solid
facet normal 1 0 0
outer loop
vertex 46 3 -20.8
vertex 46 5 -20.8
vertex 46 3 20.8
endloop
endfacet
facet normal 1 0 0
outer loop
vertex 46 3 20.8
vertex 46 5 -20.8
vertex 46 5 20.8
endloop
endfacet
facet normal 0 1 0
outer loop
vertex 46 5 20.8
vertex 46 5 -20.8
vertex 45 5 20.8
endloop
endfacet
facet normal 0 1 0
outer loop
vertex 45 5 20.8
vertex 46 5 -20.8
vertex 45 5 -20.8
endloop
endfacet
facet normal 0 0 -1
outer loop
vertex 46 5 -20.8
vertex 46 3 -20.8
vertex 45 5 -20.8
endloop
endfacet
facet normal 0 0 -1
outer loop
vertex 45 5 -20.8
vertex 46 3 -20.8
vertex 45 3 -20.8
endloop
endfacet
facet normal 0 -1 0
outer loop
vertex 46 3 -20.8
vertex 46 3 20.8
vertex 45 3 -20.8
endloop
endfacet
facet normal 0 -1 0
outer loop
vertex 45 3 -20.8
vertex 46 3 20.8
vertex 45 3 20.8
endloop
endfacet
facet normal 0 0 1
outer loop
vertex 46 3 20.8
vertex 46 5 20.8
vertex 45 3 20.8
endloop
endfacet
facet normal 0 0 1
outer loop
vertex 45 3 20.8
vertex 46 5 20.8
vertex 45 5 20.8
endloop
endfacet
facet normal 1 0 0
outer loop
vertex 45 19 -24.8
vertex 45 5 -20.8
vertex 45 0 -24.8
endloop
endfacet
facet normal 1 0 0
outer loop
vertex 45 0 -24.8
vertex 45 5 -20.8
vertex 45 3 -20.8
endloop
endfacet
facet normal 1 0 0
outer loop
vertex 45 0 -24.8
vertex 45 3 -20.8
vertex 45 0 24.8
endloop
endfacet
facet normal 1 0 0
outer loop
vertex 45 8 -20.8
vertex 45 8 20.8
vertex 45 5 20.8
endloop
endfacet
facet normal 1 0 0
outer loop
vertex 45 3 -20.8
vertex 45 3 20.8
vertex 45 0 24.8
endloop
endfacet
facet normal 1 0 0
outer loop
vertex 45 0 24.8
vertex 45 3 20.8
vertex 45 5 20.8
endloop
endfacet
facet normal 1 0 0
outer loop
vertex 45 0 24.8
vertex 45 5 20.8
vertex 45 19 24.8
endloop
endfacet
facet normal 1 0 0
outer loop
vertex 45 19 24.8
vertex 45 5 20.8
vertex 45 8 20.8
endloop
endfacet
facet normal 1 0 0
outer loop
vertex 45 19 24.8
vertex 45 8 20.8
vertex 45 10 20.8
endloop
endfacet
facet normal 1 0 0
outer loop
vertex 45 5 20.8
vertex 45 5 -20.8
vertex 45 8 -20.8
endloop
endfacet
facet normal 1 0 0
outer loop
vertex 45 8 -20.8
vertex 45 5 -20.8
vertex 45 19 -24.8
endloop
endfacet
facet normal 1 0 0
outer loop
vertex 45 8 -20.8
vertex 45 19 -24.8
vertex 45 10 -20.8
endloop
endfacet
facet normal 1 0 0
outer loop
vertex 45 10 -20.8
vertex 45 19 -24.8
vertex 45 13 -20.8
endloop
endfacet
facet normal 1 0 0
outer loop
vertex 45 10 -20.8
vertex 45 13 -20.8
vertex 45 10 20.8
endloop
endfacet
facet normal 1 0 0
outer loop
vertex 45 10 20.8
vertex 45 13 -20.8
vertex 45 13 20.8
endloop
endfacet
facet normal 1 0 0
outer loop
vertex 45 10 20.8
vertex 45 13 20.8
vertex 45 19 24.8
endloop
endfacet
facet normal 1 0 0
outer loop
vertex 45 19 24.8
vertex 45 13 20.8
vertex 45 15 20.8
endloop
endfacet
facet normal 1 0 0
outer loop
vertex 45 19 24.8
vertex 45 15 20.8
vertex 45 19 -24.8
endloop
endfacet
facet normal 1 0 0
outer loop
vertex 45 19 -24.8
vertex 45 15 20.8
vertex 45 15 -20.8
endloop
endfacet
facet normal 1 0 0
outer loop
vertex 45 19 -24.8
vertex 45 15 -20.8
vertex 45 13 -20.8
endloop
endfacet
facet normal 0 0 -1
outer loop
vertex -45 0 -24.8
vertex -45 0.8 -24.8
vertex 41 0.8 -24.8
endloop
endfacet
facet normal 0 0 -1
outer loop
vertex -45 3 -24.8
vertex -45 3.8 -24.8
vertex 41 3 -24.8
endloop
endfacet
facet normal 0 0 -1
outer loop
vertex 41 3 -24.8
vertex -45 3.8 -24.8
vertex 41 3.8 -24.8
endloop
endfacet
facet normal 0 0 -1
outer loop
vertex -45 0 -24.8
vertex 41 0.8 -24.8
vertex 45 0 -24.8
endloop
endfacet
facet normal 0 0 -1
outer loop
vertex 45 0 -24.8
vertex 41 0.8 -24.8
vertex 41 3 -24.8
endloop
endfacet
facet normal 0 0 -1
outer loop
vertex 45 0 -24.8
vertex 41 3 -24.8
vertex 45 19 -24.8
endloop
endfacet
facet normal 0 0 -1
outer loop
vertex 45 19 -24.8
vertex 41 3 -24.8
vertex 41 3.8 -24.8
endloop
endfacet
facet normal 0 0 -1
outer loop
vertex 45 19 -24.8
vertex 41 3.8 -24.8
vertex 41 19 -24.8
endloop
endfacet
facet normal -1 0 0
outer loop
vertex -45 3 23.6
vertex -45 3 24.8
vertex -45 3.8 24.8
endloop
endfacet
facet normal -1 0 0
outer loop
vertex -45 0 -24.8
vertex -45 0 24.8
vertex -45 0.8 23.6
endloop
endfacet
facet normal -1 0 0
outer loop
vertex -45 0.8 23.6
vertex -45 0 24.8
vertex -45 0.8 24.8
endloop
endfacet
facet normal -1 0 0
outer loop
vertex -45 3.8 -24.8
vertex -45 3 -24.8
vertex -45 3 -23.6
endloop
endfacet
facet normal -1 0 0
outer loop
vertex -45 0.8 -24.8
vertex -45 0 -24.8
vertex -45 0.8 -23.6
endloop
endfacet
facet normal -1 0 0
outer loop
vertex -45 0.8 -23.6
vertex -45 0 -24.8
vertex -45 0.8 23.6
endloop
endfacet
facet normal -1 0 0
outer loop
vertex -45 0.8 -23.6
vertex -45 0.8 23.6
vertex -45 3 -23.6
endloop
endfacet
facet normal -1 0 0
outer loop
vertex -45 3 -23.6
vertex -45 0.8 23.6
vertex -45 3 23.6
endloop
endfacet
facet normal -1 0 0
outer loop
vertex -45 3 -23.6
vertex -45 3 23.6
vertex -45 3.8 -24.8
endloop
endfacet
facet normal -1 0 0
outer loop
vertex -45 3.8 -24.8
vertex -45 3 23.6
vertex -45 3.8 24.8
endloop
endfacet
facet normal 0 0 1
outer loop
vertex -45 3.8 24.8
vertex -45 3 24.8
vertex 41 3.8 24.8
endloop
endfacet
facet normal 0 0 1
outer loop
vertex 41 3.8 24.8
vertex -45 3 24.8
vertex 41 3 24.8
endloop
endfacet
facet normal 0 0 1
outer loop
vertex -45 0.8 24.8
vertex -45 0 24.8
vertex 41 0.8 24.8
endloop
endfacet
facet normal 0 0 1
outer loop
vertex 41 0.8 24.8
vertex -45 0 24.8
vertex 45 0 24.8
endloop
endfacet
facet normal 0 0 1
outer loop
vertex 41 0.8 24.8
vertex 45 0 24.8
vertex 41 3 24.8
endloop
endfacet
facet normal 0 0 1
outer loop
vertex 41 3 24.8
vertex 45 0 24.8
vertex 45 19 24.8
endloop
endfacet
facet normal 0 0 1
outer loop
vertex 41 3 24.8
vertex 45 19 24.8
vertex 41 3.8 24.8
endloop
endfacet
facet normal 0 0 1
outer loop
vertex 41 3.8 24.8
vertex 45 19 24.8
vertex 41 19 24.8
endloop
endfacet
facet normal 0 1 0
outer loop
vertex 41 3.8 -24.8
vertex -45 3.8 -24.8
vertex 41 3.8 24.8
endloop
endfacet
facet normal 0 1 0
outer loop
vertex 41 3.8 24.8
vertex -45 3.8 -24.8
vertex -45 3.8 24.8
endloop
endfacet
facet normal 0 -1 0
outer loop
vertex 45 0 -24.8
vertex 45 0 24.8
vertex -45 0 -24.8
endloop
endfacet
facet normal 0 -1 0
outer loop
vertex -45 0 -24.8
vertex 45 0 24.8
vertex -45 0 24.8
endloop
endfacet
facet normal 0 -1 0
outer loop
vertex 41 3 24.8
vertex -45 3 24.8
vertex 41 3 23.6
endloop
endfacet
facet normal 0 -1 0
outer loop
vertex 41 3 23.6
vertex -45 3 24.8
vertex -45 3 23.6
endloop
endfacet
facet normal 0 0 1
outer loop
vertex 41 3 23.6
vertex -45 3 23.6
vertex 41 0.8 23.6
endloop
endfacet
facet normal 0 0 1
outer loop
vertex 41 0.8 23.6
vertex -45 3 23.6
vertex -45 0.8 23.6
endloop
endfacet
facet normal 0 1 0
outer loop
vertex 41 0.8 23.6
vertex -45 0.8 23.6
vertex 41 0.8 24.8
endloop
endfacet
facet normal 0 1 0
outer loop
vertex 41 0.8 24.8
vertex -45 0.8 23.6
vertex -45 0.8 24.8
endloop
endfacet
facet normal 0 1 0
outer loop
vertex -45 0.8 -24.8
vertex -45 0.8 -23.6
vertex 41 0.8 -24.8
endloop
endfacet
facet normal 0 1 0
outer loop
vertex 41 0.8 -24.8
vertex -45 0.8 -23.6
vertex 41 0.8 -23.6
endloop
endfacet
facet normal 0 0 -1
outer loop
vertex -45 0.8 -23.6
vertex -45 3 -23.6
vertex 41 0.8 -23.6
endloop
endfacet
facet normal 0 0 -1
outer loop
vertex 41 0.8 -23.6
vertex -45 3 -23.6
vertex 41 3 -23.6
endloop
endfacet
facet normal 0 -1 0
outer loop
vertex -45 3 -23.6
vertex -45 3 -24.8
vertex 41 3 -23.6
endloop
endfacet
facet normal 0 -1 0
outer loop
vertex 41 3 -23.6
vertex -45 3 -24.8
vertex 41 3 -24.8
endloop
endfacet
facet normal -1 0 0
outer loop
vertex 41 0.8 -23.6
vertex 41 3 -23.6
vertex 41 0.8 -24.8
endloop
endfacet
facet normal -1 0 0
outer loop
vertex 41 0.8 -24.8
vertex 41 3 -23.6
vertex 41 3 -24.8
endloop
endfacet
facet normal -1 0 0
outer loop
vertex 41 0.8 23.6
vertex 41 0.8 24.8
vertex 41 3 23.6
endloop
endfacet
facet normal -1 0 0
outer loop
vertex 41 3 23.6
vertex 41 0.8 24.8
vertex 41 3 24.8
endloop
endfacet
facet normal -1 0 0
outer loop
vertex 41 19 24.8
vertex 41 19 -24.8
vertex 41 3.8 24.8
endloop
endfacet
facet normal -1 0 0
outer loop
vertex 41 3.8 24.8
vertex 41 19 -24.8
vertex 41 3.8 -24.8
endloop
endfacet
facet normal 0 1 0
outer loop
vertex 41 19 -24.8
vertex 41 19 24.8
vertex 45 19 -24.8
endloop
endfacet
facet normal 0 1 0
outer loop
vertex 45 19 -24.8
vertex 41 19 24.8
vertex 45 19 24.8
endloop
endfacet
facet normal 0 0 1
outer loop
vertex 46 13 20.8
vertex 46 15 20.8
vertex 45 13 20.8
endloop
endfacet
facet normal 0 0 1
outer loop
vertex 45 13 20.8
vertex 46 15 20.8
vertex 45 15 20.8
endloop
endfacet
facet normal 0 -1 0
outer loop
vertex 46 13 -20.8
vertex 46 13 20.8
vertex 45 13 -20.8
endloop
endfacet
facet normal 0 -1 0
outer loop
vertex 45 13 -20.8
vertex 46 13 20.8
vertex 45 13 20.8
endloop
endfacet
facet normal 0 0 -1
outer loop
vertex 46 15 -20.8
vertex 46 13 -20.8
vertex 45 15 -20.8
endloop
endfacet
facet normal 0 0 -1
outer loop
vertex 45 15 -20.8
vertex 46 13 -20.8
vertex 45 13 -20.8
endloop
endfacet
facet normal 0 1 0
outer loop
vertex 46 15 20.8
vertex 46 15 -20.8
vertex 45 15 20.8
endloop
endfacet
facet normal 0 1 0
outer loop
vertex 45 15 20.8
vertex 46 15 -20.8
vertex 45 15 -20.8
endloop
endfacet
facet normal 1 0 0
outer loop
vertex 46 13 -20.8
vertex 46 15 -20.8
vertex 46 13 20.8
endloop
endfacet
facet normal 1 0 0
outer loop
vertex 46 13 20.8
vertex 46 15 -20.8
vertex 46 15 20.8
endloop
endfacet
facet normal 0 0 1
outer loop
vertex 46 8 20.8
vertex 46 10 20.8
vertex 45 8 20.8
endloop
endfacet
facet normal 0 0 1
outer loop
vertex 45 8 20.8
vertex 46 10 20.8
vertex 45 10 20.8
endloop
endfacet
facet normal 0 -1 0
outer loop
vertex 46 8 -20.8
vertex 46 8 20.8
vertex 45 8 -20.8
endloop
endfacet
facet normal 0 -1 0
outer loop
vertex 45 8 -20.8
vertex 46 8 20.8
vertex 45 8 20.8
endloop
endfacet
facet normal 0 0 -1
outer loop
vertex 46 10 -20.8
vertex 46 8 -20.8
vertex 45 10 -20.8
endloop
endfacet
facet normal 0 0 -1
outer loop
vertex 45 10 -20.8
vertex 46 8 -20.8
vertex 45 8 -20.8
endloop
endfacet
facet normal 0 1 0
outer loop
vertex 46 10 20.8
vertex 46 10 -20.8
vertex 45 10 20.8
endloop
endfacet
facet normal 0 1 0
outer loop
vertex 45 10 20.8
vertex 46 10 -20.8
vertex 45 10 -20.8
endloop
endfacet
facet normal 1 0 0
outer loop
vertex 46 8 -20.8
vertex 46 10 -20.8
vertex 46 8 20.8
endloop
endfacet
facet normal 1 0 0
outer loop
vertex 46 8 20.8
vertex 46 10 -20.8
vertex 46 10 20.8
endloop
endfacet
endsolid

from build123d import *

# Parameters (mm, degrees)
SKETCH1_W           = 90
SKETCH1_H           = 49.6
BOSS_EXTRUDE1_DEPTH = 3.8
SKETCH2_W           = 1.2
SKETCH2_H           = 2.2
CUT_EXTRUDE1_DEPTH  = 91
SKETCH3_W           = 4
SKETCH3_H           = 49.6
BOSS_EXTRUDE2_DEPTH = 19
SKETCH4_W           = 41.6
SKETCH4_H           = 2
BOSS_EXTRUDE3_DEPTH = 1
LPATTERN1_COUNT     = 3
LPATTERN1_PITCH     = 5


with BuildPart() as part:
    # Sketch1 → Boss-Extrude1 (new body)
    with BuildSketch(Plane(origin=(0, 0, 0), x_dir=(1, 0, 0), z_dir=(0, 1, 0))):
        Rectangle(SKETCH1_W, SKETCH1_H)
    extrude(amount=BOSS_EXTRUDE1_DEPTH)

    # Sketch2 → Cut-Extrude1 (cut, through all)
    with BuildSketch(Plane(origin=(45, 0, 0), x_dir=(0, 0, -1), z_dir=(1, 0, 0))):
        with Locations((-24.2, 1.9)):
            Rectangle(SKETCH2_W, SKETCH2_H)
    cut_extrude1 = extrude(amount=-CUT_EXTRUDE1_DEPTH, mode=Mode.SUBTRACT)

    # Mirror1: Cut-Extrude1 across plane
    add(cut_extrude1.mirror(Plane.XY), mode=Mode.SUBTRACT)

    # Sketch3 → Boss-Extrude2 (add)
    with BuildSketch(Plane.XZ):
        with Locations((43, 0)):
            Rectangle(SKETCH3_W, SKETCH3_H)
    extrude(amount=-BOSS_EXTRUDE2_DEPTH)

    # Sketch4 → Boss-Extrude3 (add)
    with BuildSketch(Plane(origin=(45, 0, 0), x_dir=(0, 0, -1), z_dir=(1, 0, 0))):
        with Locations((0, 14)):
            Rectangle(SKETCH4_W, SKETCH4_H)
    boss_extrude3 = extrude(amount=BOSS_EXTRUDE3_DEPTH)

    # LPattern1: Boss-Extrude3 ×3
    with Locations(*[(0, -i * LPATTERN1_PITCH, 0) for i in range(1, LPATTERN1_COUNT)]):
        add(boss_extrude3)


solid = part.part
